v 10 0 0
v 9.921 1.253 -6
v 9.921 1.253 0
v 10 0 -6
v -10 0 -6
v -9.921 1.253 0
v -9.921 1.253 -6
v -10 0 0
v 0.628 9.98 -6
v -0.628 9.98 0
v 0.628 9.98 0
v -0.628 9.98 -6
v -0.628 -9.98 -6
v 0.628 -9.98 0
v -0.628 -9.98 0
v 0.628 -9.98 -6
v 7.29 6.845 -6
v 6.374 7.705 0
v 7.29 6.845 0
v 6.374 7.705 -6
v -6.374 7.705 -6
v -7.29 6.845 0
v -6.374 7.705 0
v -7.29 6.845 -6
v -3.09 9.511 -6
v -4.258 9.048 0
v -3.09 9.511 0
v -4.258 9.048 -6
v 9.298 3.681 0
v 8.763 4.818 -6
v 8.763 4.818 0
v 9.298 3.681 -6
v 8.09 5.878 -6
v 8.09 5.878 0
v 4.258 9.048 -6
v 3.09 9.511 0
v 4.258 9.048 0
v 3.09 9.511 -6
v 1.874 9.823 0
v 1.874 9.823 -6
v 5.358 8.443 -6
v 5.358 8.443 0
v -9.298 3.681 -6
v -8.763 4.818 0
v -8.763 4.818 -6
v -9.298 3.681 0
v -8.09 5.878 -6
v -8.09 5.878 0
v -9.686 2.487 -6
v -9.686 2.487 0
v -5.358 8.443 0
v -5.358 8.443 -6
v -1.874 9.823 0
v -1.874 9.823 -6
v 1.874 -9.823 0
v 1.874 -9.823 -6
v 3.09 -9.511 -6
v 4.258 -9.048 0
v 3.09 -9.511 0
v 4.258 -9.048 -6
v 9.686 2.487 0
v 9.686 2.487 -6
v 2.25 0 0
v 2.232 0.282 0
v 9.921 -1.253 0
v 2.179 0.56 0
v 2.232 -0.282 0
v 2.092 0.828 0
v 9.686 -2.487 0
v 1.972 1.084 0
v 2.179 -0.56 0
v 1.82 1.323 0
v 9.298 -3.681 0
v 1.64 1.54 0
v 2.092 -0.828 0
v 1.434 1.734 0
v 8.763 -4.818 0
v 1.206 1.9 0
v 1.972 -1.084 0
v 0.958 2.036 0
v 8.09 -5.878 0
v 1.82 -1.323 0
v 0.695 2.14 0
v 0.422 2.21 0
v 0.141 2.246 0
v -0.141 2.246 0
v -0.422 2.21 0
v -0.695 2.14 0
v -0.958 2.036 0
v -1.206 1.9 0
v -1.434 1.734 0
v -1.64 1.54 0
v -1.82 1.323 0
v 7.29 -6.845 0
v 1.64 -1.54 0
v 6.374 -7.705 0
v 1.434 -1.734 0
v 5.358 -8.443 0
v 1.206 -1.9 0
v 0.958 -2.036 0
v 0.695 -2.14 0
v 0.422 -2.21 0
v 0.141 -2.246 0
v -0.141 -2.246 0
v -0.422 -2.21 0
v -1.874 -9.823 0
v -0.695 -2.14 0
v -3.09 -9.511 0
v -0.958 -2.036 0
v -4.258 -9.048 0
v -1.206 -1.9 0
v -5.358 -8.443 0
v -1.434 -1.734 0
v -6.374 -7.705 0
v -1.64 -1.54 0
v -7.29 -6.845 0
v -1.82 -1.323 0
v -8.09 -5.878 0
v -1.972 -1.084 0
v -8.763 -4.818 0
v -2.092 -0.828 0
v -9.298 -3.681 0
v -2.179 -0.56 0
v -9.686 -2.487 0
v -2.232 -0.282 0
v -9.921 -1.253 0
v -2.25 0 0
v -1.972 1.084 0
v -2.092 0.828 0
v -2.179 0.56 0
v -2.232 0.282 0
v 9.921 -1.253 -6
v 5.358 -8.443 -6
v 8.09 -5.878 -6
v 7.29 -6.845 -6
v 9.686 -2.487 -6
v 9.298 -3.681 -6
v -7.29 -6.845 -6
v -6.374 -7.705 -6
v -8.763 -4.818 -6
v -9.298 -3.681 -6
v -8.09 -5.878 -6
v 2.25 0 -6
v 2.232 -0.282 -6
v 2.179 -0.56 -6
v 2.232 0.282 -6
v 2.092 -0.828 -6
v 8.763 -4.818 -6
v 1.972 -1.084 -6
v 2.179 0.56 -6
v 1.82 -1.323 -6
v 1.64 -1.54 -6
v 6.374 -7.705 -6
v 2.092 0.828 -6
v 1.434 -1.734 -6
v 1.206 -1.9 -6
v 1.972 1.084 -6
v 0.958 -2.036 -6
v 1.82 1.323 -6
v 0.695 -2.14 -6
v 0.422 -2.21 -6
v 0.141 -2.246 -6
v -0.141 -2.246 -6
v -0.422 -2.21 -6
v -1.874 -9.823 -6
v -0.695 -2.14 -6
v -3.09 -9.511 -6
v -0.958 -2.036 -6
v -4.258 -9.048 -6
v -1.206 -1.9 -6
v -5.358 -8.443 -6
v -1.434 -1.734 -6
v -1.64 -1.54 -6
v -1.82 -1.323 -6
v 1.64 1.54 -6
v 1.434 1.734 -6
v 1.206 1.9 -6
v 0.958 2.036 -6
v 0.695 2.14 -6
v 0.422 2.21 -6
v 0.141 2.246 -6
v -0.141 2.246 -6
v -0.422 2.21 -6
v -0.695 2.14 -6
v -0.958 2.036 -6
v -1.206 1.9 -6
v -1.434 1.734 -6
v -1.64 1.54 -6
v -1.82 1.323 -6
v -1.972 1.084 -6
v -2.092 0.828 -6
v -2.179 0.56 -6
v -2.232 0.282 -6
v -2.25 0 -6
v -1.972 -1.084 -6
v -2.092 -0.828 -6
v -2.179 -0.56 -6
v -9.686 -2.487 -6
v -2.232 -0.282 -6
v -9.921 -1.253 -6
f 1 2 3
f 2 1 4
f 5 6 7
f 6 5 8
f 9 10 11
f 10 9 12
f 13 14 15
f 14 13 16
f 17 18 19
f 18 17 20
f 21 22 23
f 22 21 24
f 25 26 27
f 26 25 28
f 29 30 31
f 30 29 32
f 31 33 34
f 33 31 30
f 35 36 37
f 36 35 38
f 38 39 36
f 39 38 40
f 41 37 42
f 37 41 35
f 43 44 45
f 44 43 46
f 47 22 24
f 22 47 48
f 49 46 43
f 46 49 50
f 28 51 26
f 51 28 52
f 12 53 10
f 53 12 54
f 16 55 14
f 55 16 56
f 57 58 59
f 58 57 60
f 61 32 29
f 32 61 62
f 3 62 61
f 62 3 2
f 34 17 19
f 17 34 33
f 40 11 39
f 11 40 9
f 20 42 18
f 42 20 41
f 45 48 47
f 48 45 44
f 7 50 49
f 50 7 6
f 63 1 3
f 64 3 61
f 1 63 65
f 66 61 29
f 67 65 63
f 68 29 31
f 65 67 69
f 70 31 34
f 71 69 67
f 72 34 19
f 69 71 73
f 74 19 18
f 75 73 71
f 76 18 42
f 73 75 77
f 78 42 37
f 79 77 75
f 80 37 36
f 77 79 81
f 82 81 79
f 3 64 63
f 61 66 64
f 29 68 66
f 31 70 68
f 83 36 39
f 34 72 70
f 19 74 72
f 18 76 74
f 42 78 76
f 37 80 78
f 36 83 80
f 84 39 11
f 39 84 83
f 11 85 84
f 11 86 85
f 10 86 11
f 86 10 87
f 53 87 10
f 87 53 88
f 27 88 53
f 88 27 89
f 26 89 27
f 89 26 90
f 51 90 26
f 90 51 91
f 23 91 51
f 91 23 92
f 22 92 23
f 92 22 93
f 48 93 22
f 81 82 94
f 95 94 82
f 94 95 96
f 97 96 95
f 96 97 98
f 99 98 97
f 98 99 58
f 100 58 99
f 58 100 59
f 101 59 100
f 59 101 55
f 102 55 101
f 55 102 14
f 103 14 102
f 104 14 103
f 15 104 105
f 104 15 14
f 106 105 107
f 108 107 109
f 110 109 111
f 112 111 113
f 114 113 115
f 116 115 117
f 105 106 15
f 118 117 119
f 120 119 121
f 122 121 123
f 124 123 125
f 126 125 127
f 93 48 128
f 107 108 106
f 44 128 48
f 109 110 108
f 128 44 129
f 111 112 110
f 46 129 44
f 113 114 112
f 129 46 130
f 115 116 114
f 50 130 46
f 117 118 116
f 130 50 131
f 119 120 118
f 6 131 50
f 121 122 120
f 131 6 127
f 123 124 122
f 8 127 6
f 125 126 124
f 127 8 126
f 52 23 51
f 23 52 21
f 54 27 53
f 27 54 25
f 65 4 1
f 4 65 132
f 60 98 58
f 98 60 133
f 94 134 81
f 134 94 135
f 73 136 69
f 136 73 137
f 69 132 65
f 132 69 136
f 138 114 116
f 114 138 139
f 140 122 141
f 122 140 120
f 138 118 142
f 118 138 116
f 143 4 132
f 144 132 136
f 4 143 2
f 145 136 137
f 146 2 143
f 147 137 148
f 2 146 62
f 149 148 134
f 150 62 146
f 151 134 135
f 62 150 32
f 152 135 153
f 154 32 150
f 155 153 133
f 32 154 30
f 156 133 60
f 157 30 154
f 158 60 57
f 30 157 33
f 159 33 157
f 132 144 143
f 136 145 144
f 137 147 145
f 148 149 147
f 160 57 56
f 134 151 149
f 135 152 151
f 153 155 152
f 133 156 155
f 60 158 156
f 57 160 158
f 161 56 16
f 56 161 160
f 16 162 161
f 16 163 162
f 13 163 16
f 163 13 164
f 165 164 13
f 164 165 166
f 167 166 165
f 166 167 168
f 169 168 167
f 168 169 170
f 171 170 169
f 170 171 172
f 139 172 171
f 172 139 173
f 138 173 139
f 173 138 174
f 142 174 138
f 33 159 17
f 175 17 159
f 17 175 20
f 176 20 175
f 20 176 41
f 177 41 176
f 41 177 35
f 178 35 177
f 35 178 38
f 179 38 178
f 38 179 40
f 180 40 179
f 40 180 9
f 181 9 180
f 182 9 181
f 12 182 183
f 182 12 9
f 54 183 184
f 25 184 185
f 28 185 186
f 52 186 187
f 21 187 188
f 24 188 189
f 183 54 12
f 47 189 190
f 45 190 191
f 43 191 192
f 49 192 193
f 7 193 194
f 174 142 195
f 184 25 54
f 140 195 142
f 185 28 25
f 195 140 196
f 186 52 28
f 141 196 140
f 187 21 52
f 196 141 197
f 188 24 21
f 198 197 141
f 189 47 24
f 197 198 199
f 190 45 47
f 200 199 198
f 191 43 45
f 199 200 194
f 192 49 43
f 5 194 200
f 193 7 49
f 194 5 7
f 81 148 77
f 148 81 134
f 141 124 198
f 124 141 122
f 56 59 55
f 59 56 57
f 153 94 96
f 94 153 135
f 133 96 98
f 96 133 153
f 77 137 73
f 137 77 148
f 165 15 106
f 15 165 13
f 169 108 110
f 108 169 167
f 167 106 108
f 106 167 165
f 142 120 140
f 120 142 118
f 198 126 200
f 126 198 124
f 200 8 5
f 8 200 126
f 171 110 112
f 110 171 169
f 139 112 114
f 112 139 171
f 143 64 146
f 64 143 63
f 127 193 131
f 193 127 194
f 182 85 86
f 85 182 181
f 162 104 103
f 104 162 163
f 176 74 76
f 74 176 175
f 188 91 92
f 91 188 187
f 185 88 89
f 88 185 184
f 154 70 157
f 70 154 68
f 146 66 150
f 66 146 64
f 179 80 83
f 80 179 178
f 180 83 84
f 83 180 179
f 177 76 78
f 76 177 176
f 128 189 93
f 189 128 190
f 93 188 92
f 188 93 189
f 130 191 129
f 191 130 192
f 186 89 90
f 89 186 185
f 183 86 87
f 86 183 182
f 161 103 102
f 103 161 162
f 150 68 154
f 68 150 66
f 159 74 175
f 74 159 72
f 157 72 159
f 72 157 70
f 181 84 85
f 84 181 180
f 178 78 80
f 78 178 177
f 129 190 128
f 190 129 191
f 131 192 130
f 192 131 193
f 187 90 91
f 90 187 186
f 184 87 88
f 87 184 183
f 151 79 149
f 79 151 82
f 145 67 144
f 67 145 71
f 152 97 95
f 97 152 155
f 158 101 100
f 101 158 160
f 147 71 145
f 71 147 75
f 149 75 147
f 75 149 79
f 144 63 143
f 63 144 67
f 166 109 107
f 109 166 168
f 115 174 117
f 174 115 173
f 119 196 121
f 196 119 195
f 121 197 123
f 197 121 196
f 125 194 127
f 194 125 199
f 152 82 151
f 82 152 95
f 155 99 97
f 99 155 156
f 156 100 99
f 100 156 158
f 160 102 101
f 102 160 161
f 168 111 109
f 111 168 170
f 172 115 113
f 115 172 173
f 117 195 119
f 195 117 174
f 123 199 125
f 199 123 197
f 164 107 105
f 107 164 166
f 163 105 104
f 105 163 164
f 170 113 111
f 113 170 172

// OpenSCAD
$fn = 50;


difference() {
	union() {
		translate(v = [0, 0, -6.0000000000]) {
			cylinder(h = 6, r = 10.0000000000);
		}
	}
	union() {
		#translate(v = [0, 0, -6]) {
			cylinder(h = 6, r = 2.2500000000);
		}
	}
}
